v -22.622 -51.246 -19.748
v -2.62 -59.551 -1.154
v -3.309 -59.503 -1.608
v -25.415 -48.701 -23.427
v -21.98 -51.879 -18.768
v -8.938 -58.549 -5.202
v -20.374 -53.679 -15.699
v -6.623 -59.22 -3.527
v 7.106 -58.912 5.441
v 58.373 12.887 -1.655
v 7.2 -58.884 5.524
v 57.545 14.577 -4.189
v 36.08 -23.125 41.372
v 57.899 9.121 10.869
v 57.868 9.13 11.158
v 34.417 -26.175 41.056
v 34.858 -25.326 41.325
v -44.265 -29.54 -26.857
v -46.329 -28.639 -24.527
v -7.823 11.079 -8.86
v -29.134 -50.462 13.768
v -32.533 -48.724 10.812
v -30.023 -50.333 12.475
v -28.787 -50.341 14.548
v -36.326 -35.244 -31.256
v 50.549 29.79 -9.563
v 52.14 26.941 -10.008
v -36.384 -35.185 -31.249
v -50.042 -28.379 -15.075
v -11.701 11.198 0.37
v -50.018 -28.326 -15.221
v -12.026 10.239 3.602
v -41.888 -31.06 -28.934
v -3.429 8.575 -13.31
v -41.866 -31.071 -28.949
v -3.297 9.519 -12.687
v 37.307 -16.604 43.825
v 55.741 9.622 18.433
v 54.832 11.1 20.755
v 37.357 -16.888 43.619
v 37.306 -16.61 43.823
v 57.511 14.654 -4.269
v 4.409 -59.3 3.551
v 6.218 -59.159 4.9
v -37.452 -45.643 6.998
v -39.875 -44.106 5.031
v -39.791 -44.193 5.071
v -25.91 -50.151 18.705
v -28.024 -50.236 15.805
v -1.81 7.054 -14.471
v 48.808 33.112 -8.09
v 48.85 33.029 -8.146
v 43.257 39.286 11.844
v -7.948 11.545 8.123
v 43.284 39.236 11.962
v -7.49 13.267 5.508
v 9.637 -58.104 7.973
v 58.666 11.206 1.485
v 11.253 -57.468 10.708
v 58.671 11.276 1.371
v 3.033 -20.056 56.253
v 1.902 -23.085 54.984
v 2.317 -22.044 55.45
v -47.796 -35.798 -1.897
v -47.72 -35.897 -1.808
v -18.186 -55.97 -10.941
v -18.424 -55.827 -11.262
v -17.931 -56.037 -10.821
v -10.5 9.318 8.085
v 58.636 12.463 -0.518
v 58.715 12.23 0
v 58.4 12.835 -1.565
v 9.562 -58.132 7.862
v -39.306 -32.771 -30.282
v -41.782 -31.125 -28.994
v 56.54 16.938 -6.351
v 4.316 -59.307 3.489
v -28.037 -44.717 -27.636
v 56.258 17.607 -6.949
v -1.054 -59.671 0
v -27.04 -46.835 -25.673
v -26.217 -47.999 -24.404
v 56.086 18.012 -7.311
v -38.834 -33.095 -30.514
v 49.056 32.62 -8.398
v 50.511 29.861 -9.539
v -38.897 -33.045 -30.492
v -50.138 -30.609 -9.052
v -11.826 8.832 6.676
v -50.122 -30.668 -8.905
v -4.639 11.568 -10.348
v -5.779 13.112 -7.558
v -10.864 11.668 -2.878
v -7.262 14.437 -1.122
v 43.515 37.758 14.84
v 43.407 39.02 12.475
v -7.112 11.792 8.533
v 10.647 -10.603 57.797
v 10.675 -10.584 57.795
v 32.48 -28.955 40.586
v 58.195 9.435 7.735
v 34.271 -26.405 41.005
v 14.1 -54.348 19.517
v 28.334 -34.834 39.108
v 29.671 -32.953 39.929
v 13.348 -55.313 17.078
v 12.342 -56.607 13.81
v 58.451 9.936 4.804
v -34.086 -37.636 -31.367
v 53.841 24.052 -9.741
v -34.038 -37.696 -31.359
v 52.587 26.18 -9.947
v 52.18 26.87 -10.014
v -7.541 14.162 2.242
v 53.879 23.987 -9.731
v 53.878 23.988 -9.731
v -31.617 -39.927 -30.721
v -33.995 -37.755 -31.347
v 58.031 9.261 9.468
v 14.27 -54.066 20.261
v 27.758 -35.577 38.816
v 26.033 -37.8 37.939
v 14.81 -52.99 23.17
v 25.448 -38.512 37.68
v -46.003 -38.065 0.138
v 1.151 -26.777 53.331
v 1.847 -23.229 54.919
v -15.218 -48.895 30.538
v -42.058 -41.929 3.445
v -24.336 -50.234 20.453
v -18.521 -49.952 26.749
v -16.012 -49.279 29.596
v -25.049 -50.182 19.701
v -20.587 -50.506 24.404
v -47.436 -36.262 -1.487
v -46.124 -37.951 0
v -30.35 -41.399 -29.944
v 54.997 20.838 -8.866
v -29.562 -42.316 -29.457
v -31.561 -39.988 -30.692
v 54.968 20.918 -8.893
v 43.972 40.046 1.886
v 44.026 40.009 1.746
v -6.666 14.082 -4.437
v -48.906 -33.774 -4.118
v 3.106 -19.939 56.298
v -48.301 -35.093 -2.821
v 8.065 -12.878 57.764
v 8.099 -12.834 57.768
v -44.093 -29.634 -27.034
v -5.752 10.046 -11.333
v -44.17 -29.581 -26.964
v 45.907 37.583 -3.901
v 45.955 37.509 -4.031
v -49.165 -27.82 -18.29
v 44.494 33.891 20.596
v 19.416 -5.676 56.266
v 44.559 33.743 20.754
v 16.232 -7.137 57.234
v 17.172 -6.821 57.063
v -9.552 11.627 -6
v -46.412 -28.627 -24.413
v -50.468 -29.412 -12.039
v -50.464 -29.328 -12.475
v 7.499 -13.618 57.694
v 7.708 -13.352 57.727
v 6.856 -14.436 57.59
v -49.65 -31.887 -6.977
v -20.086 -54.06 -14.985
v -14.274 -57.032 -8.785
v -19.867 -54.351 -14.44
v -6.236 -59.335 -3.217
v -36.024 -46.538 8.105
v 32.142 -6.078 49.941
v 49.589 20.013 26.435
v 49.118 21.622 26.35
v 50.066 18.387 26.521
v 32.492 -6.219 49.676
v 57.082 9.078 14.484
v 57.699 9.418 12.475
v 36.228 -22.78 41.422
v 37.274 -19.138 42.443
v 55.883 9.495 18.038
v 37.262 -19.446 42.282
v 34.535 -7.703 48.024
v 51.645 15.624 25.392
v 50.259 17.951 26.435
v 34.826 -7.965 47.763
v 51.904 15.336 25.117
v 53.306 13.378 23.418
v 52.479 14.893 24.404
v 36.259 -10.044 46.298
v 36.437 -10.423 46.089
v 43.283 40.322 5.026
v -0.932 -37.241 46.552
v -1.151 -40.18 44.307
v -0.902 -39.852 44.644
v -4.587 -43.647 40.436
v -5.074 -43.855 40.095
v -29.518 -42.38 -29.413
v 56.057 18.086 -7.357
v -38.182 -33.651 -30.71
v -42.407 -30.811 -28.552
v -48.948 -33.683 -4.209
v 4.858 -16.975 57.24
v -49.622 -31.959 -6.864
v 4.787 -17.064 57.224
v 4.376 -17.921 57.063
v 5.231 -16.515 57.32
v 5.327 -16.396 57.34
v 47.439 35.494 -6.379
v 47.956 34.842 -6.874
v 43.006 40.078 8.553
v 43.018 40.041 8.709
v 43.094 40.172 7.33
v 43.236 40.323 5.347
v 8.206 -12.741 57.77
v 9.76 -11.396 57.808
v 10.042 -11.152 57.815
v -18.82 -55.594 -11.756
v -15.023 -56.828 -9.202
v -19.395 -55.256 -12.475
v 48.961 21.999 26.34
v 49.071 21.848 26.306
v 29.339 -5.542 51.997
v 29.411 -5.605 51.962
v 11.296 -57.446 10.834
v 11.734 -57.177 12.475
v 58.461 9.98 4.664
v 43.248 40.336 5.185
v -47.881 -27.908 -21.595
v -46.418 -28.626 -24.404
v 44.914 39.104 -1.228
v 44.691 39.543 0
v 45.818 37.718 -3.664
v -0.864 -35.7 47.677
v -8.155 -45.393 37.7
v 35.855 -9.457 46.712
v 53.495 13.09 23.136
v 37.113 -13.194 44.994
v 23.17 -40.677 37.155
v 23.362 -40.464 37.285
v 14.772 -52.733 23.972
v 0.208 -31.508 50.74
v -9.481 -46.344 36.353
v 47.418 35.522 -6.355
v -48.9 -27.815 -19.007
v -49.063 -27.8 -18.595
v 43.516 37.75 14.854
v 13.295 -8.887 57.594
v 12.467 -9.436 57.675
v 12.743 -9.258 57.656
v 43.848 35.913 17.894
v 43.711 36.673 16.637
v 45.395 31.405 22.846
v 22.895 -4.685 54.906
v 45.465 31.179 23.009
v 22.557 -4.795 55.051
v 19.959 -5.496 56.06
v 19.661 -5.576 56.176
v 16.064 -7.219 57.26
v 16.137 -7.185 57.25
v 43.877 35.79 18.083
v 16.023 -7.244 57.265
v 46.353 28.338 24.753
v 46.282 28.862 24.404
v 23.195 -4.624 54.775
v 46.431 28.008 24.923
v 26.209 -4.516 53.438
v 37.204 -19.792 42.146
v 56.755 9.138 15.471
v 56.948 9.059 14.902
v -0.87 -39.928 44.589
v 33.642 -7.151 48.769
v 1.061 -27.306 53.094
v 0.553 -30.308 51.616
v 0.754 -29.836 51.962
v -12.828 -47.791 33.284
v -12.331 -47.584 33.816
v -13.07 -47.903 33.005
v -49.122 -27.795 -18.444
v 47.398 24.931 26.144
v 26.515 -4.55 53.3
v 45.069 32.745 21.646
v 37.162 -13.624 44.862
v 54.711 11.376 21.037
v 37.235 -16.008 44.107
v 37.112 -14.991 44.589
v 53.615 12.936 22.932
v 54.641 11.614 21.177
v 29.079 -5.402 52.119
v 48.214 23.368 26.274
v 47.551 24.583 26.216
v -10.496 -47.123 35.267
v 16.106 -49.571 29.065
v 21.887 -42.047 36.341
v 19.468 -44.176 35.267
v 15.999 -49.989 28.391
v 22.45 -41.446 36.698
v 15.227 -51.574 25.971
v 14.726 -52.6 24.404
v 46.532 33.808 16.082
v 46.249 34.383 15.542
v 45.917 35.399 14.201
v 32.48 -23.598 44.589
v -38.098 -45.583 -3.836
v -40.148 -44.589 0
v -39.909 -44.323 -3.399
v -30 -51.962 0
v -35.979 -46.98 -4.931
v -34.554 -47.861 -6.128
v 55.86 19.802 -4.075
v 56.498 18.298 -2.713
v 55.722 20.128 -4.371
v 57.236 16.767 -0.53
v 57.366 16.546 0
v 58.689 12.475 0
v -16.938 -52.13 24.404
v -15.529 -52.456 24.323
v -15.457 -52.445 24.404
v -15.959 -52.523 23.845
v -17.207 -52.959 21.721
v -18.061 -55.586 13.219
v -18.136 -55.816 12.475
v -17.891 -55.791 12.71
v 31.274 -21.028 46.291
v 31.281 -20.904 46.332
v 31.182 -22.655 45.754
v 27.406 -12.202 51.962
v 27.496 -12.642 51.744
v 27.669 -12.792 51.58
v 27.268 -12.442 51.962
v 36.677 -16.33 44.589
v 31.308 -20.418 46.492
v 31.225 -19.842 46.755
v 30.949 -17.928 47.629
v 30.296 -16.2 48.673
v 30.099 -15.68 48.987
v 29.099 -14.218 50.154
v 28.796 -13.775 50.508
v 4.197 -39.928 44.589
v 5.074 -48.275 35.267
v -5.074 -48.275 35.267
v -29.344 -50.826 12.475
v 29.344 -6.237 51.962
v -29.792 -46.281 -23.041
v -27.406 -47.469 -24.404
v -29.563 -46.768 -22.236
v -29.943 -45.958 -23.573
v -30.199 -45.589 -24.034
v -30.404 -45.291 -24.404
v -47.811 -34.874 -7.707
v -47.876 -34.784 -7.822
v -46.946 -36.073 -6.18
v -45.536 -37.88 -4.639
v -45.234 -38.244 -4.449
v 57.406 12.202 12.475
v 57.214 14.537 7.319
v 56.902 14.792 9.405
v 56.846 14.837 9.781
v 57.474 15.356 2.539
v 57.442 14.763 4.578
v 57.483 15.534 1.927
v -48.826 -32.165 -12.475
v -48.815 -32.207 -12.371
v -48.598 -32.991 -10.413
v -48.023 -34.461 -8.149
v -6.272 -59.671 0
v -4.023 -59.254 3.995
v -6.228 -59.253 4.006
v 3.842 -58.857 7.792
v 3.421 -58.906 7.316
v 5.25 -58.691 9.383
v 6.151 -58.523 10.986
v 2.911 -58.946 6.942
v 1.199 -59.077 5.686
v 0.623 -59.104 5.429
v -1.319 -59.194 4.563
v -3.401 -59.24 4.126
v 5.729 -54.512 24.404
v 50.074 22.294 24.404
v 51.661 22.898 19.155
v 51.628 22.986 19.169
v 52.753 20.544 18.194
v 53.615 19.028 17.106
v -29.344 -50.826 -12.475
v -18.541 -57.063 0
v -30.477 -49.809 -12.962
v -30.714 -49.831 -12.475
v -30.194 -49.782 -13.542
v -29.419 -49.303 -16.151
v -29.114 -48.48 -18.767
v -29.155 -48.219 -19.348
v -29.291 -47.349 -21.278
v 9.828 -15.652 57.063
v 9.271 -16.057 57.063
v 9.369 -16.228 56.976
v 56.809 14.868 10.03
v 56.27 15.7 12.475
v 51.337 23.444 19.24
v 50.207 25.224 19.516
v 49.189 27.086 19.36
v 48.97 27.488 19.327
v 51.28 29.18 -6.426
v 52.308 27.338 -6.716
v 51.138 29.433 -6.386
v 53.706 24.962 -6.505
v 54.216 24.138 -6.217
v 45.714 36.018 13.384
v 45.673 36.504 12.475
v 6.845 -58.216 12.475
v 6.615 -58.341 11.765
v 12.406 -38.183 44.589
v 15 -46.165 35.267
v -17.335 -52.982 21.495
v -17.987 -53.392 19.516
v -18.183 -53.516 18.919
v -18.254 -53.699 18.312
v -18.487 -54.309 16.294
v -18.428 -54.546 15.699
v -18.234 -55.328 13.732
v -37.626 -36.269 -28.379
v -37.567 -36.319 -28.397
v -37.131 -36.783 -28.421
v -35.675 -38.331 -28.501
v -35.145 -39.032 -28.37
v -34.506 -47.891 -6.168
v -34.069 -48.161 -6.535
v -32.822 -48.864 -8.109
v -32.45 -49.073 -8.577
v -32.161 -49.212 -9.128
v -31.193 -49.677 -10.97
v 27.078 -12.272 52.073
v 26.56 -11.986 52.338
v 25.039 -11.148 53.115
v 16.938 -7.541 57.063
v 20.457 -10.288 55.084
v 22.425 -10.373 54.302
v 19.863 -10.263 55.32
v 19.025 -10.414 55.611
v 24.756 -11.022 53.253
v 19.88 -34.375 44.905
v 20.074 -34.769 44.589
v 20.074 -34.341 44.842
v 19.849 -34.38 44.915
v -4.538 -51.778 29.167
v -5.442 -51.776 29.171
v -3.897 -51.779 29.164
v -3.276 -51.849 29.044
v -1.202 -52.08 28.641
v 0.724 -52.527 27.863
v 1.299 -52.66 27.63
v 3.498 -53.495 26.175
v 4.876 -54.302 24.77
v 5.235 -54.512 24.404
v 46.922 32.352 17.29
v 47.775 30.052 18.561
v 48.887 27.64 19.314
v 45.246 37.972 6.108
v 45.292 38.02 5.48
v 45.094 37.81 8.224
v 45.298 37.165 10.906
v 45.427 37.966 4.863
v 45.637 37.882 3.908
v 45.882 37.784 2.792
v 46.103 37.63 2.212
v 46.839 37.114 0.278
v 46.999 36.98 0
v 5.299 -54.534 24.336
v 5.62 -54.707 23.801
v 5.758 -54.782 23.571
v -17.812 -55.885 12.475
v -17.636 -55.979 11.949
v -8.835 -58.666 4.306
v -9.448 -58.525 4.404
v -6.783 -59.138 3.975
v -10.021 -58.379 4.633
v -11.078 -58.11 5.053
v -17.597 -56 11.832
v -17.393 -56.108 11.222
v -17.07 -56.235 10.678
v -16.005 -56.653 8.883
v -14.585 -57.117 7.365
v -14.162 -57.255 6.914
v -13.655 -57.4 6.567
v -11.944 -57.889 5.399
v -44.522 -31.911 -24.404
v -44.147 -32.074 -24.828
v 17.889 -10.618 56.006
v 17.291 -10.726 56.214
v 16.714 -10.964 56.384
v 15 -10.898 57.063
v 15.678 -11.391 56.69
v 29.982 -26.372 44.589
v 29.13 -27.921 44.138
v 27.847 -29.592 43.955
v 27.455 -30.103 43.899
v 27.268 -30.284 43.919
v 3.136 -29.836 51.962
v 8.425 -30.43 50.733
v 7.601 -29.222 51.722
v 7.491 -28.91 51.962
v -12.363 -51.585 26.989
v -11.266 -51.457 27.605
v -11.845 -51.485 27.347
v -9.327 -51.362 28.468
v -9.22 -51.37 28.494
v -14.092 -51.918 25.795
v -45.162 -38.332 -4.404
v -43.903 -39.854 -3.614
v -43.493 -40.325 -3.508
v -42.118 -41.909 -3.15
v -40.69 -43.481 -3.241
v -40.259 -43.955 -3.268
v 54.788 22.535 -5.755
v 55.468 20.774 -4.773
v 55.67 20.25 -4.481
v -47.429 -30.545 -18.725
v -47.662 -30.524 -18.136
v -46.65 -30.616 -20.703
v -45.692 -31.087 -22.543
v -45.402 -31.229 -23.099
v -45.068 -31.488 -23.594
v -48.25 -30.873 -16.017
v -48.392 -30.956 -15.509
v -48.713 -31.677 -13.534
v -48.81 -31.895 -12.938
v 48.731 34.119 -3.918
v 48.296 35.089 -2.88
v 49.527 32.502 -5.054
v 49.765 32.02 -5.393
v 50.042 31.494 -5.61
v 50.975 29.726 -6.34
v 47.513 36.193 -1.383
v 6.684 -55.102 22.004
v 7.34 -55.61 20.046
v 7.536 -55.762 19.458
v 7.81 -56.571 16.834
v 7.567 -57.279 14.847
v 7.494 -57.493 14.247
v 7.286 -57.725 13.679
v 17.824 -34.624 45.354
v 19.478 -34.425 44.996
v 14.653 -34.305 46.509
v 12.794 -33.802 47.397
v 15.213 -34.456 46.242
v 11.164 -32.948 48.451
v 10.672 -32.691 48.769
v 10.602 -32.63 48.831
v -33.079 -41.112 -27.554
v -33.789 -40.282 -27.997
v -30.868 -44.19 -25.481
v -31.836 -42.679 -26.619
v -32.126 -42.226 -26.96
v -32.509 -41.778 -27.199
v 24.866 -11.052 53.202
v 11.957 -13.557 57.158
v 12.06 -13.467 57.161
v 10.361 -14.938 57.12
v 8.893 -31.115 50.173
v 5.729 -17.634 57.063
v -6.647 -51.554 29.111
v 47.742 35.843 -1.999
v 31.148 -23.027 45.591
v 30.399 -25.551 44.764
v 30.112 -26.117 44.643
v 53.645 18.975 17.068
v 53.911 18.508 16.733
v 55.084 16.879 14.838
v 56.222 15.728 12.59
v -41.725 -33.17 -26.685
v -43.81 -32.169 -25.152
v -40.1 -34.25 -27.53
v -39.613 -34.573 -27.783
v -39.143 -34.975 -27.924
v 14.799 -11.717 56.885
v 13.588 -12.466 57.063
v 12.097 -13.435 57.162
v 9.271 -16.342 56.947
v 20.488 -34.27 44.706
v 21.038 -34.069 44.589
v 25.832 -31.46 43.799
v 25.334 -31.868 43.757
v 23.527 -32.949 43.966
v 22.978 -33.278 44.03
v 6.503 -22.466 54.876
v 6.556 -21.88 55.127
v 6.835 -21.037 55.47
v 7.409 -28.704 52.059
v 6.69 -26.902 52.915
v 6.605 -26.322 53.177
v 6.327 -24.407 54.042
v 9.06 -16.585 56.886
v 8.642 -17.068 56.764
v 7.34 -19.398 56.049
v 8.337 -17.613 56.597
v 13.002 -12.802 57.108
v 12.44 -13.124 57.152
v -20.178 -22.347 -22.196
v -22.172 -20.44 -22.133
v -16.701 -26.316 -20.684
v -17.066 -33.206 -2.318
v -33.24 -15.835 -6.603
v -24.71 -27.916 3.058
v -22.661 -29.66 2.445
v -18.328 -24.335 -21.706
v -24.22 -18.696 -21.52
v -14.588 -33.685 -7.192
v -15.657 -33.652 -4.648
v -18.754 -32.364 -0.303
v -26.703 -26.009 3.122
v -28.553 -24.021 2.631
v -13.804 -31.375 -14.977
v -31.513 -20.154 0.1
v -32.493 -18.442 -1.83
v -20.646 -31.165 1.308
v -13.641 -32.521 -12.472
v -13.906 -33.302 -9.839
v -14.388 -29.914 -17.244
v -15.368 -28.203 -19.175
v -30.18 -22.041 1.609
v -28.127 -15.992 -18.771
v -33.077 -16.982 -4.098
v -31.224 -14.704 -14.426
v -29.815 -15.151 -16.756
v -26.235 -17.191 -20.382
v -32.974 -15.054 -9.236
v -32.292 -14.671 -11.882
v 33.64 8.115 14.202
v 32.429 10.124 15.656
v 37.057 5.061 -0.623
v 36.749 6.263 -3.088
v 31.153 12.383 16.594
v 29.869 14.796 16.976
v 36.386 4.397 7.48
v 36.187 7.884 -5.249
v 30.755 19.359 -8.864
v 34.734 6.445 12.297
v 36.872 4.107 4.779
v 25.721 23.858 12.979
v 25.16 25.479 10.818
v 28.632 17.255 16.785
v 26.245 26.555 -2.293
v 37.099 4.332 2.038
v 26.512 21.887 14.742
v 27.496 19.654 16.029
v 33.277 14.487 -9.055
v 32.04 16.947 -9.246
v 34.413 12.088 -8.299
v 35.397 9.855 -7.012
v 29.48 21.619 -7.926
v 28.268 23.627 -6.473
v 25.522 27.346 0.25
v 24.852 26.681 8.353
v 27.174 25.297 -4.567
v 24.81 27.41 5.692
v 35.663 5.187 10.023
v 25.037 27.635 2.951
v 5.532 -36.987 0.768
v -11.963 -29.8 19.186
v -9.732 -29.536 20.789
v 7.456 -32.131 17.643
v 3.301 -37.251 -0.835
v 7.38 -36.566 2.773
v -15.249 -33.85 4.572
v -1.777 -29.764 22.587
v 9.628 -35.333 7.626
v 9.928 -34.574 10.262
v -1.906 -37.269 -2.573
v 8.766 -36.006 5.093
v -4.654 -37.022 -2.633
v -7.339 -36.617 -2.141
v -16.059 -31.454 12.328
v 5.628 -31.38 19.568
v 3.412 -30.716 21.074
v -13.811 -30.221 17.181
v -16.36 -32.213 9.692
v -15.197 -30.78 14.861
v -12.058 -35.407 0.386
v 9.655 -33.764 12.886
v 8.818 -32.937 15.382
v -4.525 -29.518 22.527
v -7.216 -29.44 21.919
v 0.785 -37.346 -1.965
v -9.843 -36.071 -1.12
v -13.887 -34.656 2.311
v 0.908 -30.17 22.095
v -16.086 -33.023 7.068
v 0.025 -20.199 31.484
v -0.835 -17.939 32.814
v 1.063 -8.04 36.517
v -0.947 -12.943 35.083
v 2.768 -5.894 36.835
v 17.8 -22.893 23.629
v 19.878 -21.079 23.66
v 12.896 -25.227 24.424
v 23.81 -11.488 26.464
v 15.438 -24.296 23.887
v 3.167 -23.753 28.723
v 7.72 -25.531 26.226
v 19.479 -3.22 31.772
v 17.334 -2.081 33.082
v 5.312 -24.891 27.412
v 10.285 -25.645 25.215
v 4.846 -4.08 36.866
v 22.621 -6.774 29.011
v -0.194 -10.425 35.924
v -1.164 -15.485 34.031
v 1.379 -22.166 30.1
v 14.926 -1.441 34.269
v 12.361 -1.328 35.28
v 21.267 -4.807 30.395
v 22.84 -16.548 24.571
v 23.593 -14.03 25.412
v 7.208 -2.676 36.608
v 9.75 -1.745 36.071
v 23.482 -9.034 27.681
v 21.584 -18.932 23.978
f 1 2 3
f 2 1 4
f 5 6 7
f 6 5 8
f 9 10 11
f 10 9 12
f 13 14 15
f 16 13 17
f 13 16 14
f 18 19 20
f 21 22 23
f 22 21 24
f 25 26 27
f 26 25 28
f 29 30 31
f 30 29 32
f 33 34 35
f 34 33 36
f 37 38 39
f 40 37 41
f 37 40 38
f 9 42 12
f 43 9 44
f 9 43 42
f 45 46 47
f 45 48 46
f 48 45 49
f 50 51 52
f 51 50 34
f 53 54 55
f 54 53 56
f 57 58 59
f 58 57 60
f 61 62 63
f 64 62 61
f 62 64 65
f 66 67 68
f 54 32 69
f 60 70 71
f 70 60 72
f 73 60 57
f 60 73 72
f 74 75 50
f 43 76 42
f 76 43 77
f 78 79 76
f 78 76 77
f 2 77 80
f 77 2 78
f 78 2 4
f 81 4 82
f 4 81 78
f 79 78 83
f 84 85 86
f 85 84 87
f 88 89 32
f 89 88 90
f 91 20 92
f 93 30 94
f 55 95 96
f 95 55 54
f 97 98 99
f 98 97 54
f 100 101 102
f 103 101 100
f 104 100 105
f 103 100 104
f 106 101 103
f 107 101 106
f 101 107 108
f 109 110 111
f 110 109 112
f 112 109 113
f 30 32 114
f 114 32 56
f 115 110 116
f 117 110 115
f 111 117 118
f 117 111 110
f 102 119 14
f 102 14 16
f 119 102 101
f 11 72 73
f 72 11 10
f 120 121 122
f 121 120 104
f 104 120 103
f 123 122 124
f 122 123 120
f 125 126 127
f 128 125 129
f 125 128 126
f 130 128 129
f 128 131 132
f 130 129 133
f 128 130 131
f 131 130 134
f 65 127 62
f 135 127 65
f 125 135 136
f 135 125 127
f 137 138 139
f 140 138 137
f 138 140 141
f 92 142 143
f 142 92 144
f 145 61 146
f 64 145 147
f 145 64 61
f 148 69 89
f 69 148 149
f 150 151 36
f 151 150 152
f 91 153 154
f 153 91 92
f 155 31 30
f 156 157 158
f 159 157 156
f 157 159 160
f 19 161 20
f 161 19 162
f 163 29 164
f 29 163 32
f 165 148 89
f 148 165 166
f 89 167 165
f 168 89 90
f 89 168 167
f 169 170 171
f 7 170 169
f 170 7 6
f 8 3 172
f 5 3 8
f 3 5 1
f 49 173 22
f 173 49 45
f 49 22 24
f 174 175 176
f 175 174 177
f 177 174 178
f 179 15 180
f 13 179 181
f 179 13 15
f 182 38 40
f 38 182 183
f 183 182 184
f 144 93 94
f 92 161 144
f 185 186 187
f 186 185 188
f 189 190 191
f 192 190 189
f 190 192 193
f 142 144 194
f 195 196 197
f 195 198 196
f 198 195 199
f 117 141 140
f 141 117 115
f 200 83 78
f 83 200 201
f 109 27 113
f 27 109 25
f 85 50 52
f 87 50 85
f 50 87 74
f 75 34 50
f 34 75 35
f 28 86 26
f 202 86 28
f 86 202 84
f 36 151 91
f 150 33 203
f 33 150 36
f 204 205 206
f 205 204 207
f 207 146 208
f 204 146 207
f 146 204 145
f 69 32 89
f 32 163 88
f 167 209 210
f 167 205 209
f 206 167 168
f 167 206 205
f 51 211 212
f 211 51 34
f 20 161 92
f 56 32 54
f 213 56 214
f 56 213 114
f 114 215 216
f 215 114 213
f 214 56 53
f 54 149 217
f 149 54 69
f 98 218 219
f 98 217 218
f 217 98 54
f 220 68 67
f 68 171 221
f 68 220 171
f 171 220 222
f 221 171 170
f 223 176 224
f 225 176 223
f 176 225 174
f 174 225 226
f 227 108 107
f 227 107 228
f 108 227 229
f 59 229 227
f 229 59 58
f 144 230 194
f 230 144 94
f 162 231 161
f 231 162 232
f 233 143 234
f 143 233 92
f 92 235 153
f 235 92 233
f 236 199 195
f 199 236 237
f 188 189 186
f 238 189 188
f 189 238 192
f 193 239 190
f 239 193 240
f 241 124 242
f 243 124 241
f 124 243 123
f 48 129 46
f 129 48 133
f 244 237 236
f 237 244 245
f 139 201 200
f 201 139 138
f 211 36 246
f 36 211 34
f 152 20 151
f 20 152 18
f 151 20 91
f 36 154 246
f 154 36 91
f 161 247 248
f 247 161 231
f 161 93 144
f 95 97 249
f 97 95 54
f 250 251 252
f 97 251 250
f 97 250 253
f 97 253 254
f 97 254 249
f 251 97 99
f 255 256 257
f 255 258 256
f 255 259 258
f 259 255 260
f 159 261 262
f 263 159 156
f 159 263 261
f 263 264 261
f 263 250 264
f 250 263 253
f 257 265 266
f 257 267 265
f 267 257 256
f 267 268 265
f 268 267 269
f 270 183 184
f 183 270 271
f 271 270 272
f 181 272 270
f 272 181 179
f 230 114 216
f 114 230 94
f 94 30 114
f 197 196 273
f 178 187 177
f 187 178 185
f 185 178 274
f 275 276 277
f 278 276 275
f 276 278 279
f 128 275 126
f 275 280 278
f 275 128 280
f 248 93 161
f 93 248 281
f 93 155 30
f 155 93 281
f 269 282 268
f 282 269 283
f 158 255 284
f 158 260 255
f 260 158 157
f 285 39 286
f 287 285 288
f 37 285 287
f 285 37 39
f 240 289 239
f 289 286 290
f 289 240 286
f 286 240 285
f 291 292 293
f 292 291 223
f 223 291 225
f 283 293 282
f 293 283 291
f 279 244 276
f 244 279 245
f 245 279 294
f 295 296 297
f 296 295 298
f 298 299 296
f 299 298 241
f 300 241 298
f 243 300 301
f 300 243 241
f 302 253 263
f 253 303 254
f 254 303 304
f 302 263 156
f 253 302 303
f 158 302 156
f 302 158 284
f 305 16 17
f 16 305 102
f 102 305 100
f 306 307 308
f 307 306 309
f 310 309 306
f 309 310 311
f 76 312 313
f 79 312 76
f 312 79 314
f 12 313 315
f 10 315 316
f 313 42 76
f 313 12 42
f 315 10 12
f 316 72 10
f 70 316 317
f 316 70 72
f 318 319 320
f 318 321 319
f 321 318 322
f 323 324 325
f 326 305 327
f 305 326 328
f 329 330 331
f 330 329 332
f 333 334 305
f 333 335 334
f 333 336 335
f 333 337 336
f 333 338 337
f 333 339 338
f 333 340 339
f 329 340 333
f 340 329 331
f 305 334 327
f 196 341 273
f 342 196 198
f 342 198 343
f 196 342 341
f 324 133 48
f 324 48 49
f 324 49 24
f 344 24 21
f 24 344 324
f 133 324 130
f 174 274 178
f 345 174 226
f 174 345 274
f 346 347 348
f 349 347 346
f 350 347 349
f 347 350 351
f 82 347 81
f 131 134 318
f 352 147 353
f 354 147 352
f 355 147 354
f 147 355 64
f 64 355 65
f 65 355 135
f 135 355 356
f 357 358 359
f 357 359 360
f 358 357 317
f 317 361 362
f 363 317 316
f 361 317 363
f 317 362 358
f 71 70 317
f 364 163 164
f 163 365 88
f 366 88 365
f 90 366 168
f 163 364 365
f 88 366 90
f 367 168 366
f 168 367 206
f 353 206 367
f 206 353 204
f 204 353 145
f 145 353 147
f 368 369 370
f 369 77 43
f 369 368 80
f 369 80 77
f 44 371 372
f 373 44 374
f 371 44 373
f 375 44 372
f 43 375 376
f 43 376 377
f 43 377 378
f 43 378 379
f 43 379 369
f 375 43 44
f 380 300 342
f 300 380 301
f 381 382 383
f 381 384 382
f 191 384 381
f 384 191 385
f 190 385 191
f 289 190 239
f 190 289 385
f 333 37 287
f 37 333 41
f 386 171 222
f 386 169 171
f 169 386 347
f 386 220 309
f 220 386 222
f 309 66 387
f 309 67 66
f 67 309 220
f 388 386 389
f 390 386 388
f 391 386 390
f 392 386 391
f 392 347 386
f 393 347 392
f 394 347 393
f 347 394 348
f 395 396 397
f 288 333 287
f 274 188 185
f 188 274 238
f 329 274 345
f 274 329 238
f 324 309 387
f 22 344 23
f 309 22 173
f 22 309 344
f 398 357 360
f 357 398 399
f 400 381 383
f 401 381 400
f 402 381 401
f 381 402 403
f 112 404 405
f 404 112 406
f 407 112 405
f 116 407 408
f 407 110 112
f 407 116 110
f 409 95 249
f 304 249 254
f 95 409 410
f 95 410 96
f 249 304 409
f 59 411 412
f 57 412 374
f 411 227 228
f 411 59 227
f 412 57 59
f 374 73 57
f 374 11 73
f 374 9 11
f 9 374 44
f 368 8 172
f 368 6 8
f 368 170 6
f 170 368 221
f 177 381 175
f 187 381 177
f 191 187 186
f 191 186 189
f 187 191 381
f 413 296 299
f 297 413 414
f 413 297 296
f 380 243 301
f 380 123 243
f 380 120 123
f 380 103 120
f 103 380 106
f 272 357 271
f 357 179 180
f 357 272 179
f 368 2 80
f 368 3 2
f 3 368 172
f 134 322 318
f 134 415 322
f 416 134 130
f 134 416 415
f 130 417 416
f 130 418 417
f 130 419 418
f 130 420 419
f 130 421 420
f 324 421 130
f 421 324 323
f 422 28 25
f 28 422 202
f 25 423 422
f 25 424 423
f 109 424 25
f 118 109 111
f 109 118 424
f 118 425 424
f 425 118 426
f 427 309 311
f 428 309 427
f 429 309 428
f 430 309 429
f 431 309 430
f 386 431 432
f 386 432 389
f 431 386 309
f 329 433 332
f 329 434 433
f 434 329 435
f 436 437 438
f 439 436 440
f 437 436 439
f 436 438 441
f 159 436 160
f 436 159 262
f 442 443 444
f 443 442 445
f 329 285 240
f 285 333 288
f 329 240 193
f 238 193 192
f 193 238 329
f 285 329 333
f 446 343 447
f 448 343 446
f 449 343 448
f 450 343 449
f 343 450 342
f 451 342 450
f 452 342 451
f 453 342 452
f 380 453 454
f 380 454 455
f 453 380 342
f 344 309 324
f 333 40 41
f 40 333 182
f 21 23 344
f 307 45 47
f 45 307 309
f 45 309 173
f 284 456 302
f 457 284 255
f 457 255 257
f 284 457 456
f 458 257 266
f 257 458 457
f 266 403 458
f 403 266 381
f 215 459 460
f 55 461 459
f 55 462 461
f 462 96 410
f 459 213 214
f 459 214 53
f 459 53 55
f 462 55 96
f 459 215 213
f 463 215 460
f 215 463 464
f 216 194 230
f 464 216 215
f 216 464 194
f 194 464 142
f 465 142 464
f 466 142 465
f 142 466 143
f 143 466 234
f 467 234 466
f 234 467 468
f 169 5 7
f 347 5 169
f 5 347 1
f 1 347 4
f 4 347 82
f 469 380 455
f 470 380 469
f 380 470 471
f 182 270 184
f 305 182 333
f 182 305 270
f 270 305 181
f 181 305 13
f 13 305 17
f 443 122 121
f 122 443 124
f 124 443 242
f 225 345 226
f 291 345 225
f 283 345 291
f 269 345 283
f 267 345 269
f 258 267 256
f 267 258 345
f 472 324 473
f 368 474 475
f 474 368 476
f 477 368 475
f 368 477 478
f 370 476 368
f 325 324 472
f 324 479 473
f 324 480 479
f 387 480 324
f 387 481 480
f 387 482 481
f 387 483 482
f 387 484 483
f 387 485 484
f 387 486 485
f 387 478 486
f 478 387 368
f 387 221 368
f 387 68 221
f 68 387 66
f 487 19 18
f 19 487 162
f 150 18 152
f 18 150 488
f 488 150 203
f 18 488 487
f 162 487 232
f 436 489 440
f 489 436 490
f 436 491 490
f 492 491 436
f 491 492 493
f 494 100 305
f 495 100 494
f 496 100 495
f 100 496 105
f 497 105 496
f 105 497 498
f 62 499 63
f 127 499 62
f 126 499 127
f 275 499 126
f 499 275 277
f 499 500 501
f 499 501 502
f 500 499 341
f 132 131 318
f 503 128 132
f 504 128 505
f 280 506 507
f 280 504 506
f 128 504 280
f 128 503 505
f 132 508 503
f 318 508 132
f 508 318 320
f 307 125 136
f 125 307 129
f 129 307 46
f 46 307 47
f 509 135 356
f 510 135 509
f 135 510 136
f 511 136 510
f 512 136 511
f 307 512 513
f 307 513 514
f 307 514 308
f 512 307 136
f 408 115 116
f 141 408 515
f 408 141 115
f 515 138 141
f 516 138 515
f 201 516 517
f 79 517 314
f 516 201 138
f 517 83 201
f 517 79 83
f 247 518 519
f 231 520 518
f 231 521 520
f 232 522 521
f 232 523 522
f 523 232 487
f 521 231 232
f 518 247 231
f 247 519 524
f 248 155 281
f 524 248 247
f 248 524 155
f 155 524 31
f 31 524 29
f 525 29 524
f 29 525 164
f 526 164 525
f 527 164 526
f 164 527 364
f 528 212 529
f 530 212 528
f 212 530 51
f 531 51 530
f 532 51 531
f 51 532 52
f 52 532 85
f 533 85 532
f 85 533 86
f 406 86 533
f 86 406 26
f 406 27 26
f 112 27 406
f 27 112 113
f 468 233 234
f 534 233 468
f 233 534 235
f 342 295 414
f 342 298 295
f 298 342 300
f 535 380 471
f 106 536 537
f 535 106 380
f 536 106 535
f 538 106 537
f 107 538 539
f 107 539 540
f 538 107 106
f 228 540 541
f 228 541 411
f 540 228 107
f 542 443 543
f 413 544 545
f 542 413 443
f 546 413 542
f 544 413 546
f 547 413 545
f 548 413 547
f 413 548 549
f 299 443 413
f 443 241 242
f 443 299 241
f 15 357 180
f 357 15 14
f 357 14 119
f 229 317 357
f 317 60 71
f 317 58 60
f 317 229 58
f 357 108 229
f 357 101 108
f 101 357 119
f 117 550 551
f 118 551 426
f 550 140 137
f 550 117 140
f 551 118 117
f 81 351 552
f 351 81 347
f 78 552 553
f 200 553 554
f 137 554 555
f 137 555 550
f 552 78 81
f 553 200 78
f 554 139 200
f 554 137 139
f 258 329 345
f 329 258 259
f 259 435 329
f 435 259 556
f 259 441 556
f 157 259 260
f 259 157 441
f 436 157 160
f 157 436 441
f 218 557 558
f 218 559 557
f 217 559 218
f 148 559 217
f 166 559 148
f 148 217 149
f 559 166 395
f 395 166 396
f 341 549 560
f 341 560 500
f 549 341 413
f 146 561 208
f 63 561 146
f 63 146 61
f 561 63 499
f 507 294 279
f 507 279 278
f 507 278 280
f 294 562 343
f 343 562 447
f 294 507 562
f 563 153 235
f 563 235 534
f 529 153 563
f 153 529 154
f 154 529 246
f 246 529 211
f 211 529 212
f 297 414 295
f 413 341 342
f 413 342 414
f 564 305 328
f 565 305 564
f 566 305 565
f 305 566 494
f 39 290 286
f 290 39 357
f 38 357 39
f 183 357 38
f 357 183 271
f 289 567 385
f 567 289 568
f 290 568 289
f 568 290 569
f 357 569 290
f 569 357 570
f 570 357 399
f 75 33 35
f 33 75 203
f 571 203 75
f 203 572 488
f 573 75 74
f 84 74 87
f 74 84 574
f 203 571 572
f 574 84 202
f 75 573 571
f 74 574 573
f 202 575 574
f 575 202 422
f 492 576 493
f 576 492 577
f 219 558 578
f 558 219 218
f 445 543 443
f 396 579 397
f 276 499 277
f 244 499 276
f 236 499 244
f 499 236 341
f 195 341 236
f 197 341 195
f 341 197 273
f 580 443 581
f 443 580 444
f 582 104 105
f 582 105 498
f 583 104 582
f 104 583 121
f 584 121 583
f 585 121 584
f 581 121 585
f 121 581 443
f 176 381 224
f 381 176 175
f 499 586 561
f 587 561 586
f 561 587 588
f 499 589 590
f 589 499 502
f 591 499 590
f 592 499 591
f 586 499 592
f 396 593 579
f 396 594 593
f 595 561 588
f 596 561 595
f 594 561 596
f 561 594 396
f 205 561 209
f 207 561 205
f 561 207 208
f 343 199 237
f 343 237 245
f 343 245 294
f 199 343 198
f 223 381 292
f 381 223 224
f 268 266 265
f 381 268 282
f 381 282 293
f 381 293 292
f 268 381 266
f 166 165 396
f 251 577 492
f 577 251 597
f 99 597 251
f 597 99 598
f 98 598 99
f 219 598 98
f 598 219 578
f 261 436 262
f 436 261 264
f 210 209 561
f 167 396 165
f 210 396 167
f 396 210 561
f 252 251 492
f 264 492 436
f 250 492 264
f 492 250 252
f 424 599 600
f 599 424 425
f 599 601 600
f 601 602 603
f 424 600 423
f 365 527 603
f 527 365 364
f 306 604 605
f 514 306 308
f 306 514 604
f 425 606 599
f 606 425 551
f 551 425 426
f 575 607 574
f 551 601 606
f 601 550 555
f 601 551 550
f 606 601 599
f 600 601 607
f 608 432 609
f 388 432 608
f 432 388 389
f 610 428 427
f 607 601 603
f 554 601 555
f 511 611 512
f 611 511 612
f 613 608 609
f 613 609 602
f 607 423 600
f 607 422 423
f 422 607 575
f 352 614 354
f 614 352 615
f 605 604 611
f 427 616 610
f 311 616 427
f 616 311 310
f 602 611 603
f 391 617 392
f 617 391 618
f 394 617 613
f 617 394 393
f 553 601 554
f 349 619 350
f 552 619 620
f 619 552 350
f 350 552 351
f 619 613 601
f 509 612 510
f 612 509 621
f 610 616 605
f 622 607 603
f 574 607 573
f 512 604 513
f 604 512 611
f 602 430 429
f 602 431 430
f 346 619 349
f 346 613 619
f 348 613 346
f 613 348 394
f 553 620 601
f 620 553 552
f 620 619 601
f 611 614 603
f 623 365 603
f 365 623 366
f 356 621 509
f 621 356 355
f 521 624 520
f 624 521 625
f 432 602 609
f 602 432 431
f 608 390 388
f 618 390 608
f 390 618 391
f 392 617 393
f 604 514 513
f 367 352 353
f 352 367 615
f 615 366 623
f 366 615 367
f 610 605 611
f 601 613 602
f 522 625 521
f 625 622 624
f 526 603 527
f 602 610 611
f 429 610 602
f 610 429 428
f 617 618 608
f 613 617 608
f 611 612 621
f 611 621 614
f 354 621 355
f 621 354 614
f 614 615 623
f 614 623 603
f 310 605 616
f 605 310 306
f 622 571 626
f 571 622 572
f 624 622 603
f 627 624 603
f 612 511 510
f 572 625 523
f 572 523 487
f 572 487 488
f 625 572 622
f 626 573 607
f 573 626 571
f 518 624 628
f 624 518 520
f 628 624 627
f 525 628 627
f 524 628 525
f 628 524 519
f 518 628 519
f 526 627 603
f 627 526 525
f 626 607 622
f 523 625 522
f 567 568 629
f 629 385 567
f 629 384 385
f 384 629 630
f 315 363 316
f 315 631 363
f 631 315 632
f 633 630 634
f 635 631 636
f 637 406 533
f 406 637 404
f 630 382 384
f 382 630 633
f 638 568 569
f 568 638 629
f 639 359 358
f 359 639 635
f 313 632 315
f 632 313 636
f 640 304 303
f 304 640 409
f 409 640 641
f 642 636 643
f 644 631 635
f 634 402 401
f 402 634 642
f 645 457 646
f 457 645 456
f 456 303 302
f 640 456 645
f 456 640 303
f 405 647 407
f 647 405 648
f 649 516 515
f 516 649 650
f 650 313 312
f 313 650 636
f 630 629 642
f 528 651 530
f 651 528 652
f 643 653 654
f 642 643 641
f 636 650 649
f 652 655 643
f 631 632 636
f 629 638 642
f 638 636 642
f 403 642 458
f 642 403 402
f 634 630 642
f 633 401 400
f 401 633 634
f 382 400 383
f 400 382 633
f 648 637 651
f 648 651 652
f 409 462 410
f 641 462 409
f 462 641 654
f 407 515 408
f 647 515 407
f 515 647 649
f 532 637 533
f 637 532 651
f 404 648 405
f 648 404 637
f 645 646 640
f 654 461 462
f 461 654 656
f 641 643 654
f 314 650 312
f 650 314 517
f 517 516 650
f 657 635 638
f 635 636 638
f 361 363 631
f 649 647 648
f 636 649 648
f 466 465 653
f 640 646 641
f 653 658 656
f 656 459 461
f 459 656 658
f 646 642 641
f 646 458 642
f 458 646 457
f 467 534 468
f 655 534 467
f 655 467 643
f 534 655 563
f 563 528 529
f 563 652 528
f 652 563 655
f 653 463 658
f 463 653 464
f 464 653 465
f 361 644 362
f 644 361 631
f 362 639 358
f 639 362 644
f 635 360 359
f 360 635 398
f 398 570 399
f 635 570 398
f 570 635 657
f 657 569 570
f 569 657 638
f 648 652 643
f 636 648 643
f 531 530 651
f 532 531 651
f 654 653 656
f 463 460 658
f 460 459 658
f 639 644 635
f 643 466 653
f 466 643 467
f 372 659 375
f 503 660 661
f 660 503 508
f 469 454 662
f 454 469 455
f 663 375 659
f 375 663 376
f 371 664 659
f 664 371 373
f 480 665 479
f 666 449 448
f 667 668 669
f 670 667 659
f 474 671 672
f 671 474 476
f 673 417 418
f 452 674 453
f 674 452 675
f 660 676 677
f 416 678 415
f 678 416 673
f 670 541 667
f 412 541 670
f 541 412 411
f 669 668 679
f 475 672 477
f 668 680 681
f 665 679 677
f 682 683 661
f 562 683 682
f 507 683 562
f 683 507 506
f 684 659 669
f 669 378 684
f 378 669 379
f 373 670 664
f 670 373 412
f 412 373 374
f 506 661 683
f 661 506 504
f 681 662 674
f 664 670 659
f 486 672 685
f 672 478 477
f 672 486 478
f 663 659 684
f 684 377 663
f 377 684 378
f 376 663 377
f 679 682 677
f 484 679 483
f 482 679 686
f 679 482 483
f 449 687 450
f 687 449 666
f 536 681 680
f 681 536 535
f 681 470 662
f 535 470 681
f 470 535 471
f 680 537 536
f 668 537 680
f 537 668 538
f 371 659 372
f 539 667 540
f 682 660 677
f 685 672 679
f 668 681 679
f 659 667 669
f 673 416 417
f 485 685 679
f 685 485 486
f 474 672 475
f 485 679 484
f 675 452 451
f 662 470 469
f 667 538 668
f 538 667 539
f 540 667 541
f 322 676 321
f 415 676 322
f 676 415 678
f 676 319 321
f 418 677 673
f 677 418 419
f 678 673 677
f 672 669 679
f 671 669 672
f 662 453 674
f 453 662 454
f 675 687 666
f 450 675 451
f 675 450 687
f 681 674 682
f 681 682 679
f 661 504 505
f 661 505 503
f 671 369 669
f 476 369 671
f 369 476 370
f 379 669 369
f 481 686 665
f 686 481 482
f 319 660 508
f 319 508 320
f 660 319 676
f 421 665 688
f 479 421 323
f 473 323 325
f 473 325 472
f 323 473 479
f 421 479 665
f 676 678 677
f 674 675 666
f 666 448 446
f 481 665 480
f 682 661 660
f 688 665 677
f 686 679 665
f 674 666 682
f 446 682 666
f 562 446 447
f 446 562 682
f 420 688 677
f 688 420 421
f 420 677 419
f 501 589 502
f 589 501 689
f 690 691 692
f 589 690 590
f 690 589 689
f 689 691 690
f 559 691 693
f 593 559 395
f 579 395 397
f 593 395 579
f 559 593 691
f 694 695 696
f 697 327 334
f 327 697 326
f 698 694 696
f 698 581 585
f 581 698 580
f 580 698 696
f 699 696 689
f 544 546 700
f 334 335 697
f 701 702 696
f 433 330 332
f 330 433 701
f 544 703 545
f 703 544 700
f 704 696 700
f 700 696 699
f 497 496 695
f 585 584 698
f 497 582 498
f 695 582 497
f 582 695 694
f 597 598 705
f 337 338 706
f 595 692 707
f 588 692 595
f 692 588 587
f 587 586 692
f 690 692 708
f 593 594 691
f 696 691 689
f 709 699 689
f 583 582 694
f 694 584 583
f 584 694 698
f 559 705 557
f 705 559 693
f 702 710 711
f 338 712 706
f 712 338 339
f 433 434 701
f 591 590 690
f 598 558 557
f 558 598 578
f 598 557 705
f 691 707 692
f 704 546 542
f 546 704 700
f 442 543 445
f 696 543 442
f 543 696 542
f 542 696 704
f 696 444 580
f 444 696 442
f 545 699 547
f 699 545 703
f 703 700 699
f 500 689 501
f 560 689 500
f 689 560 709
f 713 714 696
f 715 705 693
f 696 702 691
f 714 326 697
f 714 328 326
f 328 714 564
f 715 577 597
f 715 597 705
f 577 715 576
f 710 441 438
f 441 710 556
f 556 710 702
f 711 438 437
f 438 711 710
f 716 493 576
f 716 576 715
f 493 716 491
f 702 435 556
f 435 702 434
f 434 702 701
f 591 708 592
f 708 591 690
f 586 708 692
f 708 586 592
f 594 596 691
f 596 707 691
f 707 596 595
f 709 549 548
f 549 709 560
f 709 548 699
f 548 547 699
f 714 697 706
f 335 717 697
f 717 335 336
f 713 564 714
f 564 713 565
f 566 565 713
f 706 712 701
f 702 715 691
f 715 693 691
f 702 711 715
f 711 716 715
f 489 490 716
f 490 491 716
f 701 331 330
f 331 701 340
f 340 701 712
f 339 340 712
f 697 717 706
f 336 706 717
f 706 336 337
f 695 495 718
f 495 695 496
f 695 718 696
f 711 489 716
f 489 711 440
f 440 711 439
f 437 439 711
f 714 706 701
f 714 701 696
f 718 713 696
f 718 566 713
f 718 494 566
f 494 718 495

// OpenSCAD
difference() {
	intersection() {
		hull() {
			rotate(a = -150.5328343081, v = [0.4733274638, 0.1339814529, -0.0000000000]) {
				rotate(a = -90.0000000000, v = [0.3062393065, 0.9519545615, -0.0000000000]) {
					cylinder(h = 60, r = 16.2000000000);
				}
			}
			rotate(a = -150.5328343081, v = [0.4733274638, 0.1339814529, -0.0000000000]) {
				rotate(a = -90.0000000000, v = [0.0494204846, -0.9987780613, 0.0000000000]) {
					cylinder(h = 60, r = 16.2000000000);
				}
			}
			rotate(a = -150.5328343081, v = [0.4733274638, 0.1339814529, -0.0000000000]) {
				rotate(a = -133.4303559138, v = [0.5183142494, 0.5086571451, -0.0000000000]) {
					cylinder(h = 60, r = 16.2000000000);
				}
			}
			rotate(a = -150.5328343081, v = [0.4733274638, 0.1339814529, -0.0000000000]) {
				rotate(a = -167.9994481359, v = [0.0315492145, -0.2055135907, 0.0000000000]) {
					cylinder(h = 60, r = 16.2000000000);
				}
			}
		}
		sphere(r = 60);
	}
	union() {
		rotate(a = -150.5328343081, v = [0.4733274638, 0.1339814529, -0.0000000000]) {
			rotate(a = -90.0000000000, v = [0.3062393065, 0.9519545615, -0.0000000000]) {
				translate(v = [0, 0, 35]) {
					cylinder(h = 100, r = 13.2000000000);
				}
			}
		}
		rotate(a = -150.5328343081, v = [0.4733274638, 0.1339814529, -0.0000000000]) {
			rotate(a = -90.0000000000, v = [0.0494204846, -0.9987780613, 0.0000000000]) {
				translate(v = [0, 0, 35]) {
					cylinder(h = 100, r = 13.2000000000);
				}
			}
		}
		rotate(a = -150.5328343081, v = [0.4733274638, 0.1339814529, -0.0000000000]) {
			rotate(a = -133.4303559138, v = [0.5183142494, 0.5086571451, -0.0000000000]) {
				translate(v = [0, 0, 35]) {
					cylinder(h = 100, r = 13.2000000000);
				}
			}
		}
		rotate(a = -150.5328343081, v = [0.4733274638, 0.1339814529, -0.0000000000]) {
			rotate(a = -167.9994481359, v = [0.0315492145, -0.2055135907, 0.0000000000]) {
				translate(v = [0, 0, 35]) {
					cylinder(h = 100, r = 13.2000000000);
				}
			}
		}
	}
}
